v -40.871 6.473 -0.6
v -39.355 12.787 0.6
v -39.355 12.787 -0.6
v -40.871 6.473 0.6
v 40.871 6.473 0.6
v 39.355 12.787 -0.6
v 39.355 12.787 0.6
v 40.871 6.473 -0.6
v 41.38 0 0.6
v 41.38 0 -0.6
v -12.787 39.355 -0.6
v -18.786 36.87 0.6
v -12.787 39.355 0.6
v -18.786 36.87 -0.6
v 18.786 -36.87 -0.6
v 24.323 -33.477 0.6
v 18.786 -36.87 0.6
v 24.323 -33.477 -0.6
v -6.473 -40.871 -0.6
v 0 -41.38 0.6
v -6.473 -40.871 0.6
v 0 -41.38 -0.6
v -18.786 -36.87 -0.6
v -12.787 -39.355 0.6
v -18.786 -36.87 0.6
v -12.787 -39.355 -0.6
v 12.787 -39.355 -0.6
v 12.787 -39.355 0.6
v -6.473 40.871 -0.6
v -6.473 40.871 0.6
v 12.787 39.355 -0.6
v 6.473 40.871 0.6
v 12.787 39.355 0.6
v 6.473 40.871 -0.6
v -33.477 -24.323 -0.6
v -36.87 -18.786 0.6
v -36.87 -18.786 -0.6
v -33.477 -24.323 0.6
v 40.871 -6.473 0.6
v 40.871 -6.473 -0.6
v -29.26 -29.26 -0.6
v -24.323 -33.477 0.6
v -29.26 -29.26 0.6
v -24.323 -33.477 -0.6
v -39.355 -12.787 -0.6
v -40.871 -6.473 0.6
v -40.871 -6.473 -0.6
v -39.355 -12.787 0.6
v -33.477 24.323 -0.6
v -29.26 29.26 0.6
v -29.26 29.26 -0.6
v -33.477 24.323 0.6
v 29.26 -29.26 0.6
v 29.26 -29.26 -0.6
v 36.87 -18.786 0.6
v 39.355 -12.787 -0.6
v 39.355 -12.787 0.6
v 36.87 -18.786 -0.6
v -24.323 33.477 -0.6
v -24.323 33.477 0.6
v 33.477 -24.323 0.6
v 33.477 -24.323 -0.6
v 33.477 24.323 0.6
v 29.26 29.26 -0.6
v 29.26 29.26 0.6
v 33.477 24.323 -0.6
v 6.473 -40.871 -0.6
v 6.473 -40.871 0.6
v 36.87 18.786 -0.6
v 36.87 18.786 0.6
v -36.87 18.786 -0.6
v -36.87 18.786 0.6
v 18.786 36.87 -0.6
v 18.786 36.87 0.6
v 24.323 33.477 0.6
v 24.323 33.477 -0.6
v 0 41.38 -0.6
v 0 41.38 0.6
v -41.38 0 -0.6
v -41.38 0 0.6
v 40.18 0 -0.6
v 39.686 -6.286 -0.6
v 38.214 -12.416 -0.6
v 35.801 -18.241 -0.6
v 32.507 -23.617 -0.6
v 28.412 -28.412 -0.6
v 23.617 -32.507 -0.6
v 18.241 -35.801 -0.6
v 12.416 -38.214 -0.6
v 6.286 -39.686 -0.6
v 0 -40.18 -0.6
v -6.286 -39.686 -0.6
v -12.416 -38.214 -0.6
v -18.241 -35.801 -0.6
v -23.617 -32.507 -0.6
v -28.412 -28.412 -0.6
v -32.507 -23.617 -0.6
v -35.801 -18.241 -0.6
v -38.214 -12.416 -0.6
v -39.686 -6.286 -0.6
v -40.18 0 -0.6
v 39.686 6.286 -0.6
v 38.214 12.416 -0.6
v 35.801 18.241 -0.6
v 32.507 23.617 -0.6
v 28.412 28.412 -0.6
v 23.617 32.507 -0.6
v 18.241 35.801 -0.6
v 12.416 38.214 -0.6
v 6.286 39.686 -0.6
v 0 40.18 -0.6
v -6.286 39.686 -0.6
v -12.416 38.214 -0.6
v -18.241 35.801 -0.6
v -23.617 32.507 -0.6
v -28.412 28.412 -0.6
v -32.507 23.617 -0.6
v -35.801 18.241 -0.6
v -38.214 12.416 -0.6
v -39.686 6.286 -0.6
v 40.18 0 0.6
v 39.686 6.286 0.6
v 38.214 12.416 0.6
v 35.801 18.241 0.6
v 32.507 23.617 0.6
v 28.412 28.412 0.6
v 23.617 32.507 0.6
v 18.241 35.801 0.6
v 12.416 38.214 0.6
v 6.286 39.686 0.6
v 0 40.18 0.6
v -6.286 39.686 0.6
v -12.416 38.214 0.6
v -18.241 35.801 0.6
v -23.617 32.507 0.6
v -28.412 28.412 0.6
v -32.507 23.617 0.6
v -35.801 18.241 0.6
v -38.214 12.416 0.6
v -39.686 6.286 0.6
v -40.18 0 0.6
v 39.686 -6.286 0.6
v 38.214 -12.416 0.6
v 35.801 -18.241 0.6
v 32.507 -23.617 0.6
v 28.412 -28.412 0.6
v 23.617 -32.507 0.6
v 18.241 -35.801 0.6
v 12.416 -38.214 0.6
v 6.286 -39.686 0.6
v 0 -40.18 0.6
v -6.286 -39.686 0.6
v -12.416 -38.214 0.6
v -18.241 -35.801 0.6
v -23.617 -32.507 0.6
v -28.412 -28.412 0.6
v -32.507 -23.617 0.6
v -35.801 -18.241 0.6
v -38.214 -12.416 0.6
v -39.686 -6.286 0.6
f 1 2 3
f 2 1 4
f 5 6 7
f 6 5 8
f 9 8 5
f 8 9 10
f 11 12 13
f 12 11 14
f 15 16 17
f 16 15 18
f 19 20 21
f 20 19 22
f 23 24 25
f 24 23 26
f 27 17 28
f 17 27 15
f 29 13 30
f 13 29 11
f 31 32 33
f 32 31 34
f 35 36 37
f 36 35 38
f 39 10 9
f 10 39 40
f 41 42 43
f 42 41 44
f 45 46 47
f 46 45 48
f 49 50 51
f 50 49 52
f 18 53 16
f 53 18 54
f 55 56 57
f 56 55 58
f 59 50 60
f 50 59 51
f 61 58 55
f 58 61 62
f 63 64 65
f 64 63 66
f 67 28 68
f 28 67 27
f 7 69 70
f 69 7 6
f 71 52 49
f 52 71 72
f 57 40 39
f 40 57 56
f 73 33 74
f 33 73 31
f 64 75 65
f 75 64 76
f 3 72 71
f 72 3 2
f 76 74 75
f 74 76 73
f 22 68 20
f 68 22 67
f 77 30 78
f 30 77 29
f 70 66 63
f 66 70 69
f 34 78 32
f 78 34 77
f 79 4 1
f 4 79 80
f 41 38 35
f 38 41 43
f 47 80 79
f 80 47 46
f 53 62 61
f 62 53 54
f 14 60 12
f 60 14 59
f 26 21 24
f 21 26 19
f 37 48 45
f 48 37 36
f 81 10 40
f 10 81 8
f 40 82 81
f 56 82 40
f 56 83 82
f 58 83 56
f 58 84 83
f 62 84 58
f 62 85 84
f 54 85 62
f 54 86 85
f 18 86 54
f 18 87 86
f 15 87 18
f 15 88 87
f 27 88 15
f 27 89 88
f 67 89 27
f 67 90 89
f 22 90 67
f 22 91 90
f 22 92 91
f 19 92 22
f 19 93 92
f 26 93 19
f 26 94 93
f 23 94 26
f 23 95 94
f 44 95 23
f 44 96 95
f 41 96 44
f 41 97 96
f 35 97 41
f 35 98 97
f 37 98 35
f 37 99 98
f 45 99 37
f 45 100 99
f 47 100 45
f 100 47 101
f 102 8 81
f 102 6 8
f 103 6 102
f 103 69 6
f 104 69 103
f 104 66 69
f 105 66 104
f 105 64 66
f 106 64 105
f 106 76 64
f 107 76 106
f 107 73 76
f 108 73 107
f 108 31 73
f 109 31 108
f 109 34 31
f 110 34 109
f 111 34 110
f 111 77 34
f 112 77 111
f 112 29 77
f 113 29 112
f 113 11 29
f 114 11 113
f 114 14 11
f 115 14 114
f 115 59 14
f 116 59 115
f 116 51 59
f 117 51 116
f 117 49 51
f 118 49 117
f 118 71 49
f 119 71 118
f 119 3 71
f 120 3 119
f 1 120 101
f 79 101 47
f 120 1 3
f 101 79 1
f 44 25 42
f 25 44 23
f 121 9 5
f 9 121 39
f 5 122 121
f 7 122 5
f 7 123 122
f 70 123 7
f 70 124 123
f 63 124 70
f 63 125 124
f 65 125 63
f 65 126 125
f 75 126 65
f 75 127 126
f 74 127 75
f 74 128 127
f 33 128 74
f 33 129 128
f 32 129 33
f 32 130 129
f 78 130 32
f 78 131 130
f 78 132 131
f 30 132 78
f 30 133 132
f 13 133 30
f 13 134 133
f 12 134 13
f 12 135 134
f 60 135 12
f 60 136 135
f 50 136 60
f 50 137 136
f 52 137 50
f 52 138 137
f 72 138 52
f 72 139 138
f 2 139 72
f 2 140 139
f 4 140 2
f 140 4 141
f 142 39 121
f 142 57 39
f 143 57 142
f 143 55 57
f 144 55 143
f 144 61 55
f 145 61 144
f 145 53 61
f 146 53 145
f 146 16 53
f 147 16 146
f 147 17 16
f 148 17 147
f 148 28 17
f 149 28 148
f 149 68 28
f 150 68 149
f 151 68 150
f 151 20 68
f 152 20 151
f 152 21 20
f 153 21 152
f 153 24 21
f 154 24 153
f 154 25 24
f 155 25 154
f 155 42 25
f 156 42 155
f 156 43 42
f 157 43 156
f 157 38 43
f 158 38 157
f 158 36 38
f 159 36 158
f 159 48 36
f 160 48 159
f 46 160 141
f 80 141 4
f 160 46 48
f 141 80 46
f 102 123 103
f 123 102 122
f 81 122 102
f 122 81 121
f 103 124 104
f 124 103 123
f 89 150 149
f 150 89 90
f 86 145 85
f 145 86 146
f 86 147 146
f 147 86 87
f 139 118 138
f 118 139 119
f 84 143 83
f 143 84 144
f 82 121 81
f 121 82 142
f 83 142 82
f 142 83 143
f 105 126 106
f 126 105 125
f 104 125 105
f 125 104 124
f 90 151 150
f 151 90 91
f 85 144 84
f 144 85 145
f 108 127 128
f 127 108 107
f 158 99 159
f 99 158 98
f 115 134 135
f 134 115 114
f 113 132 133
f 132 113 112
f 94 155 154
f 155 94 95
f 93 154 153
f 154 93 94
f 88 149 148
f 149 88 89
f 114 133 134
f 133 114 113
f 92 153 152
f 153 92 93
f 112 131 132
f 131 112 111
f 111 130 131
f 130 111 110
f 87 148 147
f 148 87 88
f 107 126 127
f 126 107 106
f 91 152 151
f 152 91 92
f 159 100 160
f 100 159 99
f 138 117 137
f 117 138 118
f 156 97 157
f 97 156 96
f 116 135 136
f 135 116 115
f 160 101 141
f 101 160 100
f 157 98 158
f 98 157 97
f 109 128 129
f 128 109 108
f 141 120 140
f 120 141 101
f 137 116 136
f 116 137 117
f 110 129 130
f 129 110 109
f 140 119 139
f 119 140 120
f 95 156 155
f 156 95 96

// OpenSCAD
$fn=40;

Circunferencia = 2*130;
D = Circunferencia/3.14159;
e=1.2;

difference(){

    cylinder(d=D,h=e,center=true);
    cylinder(d=D-2*e,h=e+1,center=true);
}
